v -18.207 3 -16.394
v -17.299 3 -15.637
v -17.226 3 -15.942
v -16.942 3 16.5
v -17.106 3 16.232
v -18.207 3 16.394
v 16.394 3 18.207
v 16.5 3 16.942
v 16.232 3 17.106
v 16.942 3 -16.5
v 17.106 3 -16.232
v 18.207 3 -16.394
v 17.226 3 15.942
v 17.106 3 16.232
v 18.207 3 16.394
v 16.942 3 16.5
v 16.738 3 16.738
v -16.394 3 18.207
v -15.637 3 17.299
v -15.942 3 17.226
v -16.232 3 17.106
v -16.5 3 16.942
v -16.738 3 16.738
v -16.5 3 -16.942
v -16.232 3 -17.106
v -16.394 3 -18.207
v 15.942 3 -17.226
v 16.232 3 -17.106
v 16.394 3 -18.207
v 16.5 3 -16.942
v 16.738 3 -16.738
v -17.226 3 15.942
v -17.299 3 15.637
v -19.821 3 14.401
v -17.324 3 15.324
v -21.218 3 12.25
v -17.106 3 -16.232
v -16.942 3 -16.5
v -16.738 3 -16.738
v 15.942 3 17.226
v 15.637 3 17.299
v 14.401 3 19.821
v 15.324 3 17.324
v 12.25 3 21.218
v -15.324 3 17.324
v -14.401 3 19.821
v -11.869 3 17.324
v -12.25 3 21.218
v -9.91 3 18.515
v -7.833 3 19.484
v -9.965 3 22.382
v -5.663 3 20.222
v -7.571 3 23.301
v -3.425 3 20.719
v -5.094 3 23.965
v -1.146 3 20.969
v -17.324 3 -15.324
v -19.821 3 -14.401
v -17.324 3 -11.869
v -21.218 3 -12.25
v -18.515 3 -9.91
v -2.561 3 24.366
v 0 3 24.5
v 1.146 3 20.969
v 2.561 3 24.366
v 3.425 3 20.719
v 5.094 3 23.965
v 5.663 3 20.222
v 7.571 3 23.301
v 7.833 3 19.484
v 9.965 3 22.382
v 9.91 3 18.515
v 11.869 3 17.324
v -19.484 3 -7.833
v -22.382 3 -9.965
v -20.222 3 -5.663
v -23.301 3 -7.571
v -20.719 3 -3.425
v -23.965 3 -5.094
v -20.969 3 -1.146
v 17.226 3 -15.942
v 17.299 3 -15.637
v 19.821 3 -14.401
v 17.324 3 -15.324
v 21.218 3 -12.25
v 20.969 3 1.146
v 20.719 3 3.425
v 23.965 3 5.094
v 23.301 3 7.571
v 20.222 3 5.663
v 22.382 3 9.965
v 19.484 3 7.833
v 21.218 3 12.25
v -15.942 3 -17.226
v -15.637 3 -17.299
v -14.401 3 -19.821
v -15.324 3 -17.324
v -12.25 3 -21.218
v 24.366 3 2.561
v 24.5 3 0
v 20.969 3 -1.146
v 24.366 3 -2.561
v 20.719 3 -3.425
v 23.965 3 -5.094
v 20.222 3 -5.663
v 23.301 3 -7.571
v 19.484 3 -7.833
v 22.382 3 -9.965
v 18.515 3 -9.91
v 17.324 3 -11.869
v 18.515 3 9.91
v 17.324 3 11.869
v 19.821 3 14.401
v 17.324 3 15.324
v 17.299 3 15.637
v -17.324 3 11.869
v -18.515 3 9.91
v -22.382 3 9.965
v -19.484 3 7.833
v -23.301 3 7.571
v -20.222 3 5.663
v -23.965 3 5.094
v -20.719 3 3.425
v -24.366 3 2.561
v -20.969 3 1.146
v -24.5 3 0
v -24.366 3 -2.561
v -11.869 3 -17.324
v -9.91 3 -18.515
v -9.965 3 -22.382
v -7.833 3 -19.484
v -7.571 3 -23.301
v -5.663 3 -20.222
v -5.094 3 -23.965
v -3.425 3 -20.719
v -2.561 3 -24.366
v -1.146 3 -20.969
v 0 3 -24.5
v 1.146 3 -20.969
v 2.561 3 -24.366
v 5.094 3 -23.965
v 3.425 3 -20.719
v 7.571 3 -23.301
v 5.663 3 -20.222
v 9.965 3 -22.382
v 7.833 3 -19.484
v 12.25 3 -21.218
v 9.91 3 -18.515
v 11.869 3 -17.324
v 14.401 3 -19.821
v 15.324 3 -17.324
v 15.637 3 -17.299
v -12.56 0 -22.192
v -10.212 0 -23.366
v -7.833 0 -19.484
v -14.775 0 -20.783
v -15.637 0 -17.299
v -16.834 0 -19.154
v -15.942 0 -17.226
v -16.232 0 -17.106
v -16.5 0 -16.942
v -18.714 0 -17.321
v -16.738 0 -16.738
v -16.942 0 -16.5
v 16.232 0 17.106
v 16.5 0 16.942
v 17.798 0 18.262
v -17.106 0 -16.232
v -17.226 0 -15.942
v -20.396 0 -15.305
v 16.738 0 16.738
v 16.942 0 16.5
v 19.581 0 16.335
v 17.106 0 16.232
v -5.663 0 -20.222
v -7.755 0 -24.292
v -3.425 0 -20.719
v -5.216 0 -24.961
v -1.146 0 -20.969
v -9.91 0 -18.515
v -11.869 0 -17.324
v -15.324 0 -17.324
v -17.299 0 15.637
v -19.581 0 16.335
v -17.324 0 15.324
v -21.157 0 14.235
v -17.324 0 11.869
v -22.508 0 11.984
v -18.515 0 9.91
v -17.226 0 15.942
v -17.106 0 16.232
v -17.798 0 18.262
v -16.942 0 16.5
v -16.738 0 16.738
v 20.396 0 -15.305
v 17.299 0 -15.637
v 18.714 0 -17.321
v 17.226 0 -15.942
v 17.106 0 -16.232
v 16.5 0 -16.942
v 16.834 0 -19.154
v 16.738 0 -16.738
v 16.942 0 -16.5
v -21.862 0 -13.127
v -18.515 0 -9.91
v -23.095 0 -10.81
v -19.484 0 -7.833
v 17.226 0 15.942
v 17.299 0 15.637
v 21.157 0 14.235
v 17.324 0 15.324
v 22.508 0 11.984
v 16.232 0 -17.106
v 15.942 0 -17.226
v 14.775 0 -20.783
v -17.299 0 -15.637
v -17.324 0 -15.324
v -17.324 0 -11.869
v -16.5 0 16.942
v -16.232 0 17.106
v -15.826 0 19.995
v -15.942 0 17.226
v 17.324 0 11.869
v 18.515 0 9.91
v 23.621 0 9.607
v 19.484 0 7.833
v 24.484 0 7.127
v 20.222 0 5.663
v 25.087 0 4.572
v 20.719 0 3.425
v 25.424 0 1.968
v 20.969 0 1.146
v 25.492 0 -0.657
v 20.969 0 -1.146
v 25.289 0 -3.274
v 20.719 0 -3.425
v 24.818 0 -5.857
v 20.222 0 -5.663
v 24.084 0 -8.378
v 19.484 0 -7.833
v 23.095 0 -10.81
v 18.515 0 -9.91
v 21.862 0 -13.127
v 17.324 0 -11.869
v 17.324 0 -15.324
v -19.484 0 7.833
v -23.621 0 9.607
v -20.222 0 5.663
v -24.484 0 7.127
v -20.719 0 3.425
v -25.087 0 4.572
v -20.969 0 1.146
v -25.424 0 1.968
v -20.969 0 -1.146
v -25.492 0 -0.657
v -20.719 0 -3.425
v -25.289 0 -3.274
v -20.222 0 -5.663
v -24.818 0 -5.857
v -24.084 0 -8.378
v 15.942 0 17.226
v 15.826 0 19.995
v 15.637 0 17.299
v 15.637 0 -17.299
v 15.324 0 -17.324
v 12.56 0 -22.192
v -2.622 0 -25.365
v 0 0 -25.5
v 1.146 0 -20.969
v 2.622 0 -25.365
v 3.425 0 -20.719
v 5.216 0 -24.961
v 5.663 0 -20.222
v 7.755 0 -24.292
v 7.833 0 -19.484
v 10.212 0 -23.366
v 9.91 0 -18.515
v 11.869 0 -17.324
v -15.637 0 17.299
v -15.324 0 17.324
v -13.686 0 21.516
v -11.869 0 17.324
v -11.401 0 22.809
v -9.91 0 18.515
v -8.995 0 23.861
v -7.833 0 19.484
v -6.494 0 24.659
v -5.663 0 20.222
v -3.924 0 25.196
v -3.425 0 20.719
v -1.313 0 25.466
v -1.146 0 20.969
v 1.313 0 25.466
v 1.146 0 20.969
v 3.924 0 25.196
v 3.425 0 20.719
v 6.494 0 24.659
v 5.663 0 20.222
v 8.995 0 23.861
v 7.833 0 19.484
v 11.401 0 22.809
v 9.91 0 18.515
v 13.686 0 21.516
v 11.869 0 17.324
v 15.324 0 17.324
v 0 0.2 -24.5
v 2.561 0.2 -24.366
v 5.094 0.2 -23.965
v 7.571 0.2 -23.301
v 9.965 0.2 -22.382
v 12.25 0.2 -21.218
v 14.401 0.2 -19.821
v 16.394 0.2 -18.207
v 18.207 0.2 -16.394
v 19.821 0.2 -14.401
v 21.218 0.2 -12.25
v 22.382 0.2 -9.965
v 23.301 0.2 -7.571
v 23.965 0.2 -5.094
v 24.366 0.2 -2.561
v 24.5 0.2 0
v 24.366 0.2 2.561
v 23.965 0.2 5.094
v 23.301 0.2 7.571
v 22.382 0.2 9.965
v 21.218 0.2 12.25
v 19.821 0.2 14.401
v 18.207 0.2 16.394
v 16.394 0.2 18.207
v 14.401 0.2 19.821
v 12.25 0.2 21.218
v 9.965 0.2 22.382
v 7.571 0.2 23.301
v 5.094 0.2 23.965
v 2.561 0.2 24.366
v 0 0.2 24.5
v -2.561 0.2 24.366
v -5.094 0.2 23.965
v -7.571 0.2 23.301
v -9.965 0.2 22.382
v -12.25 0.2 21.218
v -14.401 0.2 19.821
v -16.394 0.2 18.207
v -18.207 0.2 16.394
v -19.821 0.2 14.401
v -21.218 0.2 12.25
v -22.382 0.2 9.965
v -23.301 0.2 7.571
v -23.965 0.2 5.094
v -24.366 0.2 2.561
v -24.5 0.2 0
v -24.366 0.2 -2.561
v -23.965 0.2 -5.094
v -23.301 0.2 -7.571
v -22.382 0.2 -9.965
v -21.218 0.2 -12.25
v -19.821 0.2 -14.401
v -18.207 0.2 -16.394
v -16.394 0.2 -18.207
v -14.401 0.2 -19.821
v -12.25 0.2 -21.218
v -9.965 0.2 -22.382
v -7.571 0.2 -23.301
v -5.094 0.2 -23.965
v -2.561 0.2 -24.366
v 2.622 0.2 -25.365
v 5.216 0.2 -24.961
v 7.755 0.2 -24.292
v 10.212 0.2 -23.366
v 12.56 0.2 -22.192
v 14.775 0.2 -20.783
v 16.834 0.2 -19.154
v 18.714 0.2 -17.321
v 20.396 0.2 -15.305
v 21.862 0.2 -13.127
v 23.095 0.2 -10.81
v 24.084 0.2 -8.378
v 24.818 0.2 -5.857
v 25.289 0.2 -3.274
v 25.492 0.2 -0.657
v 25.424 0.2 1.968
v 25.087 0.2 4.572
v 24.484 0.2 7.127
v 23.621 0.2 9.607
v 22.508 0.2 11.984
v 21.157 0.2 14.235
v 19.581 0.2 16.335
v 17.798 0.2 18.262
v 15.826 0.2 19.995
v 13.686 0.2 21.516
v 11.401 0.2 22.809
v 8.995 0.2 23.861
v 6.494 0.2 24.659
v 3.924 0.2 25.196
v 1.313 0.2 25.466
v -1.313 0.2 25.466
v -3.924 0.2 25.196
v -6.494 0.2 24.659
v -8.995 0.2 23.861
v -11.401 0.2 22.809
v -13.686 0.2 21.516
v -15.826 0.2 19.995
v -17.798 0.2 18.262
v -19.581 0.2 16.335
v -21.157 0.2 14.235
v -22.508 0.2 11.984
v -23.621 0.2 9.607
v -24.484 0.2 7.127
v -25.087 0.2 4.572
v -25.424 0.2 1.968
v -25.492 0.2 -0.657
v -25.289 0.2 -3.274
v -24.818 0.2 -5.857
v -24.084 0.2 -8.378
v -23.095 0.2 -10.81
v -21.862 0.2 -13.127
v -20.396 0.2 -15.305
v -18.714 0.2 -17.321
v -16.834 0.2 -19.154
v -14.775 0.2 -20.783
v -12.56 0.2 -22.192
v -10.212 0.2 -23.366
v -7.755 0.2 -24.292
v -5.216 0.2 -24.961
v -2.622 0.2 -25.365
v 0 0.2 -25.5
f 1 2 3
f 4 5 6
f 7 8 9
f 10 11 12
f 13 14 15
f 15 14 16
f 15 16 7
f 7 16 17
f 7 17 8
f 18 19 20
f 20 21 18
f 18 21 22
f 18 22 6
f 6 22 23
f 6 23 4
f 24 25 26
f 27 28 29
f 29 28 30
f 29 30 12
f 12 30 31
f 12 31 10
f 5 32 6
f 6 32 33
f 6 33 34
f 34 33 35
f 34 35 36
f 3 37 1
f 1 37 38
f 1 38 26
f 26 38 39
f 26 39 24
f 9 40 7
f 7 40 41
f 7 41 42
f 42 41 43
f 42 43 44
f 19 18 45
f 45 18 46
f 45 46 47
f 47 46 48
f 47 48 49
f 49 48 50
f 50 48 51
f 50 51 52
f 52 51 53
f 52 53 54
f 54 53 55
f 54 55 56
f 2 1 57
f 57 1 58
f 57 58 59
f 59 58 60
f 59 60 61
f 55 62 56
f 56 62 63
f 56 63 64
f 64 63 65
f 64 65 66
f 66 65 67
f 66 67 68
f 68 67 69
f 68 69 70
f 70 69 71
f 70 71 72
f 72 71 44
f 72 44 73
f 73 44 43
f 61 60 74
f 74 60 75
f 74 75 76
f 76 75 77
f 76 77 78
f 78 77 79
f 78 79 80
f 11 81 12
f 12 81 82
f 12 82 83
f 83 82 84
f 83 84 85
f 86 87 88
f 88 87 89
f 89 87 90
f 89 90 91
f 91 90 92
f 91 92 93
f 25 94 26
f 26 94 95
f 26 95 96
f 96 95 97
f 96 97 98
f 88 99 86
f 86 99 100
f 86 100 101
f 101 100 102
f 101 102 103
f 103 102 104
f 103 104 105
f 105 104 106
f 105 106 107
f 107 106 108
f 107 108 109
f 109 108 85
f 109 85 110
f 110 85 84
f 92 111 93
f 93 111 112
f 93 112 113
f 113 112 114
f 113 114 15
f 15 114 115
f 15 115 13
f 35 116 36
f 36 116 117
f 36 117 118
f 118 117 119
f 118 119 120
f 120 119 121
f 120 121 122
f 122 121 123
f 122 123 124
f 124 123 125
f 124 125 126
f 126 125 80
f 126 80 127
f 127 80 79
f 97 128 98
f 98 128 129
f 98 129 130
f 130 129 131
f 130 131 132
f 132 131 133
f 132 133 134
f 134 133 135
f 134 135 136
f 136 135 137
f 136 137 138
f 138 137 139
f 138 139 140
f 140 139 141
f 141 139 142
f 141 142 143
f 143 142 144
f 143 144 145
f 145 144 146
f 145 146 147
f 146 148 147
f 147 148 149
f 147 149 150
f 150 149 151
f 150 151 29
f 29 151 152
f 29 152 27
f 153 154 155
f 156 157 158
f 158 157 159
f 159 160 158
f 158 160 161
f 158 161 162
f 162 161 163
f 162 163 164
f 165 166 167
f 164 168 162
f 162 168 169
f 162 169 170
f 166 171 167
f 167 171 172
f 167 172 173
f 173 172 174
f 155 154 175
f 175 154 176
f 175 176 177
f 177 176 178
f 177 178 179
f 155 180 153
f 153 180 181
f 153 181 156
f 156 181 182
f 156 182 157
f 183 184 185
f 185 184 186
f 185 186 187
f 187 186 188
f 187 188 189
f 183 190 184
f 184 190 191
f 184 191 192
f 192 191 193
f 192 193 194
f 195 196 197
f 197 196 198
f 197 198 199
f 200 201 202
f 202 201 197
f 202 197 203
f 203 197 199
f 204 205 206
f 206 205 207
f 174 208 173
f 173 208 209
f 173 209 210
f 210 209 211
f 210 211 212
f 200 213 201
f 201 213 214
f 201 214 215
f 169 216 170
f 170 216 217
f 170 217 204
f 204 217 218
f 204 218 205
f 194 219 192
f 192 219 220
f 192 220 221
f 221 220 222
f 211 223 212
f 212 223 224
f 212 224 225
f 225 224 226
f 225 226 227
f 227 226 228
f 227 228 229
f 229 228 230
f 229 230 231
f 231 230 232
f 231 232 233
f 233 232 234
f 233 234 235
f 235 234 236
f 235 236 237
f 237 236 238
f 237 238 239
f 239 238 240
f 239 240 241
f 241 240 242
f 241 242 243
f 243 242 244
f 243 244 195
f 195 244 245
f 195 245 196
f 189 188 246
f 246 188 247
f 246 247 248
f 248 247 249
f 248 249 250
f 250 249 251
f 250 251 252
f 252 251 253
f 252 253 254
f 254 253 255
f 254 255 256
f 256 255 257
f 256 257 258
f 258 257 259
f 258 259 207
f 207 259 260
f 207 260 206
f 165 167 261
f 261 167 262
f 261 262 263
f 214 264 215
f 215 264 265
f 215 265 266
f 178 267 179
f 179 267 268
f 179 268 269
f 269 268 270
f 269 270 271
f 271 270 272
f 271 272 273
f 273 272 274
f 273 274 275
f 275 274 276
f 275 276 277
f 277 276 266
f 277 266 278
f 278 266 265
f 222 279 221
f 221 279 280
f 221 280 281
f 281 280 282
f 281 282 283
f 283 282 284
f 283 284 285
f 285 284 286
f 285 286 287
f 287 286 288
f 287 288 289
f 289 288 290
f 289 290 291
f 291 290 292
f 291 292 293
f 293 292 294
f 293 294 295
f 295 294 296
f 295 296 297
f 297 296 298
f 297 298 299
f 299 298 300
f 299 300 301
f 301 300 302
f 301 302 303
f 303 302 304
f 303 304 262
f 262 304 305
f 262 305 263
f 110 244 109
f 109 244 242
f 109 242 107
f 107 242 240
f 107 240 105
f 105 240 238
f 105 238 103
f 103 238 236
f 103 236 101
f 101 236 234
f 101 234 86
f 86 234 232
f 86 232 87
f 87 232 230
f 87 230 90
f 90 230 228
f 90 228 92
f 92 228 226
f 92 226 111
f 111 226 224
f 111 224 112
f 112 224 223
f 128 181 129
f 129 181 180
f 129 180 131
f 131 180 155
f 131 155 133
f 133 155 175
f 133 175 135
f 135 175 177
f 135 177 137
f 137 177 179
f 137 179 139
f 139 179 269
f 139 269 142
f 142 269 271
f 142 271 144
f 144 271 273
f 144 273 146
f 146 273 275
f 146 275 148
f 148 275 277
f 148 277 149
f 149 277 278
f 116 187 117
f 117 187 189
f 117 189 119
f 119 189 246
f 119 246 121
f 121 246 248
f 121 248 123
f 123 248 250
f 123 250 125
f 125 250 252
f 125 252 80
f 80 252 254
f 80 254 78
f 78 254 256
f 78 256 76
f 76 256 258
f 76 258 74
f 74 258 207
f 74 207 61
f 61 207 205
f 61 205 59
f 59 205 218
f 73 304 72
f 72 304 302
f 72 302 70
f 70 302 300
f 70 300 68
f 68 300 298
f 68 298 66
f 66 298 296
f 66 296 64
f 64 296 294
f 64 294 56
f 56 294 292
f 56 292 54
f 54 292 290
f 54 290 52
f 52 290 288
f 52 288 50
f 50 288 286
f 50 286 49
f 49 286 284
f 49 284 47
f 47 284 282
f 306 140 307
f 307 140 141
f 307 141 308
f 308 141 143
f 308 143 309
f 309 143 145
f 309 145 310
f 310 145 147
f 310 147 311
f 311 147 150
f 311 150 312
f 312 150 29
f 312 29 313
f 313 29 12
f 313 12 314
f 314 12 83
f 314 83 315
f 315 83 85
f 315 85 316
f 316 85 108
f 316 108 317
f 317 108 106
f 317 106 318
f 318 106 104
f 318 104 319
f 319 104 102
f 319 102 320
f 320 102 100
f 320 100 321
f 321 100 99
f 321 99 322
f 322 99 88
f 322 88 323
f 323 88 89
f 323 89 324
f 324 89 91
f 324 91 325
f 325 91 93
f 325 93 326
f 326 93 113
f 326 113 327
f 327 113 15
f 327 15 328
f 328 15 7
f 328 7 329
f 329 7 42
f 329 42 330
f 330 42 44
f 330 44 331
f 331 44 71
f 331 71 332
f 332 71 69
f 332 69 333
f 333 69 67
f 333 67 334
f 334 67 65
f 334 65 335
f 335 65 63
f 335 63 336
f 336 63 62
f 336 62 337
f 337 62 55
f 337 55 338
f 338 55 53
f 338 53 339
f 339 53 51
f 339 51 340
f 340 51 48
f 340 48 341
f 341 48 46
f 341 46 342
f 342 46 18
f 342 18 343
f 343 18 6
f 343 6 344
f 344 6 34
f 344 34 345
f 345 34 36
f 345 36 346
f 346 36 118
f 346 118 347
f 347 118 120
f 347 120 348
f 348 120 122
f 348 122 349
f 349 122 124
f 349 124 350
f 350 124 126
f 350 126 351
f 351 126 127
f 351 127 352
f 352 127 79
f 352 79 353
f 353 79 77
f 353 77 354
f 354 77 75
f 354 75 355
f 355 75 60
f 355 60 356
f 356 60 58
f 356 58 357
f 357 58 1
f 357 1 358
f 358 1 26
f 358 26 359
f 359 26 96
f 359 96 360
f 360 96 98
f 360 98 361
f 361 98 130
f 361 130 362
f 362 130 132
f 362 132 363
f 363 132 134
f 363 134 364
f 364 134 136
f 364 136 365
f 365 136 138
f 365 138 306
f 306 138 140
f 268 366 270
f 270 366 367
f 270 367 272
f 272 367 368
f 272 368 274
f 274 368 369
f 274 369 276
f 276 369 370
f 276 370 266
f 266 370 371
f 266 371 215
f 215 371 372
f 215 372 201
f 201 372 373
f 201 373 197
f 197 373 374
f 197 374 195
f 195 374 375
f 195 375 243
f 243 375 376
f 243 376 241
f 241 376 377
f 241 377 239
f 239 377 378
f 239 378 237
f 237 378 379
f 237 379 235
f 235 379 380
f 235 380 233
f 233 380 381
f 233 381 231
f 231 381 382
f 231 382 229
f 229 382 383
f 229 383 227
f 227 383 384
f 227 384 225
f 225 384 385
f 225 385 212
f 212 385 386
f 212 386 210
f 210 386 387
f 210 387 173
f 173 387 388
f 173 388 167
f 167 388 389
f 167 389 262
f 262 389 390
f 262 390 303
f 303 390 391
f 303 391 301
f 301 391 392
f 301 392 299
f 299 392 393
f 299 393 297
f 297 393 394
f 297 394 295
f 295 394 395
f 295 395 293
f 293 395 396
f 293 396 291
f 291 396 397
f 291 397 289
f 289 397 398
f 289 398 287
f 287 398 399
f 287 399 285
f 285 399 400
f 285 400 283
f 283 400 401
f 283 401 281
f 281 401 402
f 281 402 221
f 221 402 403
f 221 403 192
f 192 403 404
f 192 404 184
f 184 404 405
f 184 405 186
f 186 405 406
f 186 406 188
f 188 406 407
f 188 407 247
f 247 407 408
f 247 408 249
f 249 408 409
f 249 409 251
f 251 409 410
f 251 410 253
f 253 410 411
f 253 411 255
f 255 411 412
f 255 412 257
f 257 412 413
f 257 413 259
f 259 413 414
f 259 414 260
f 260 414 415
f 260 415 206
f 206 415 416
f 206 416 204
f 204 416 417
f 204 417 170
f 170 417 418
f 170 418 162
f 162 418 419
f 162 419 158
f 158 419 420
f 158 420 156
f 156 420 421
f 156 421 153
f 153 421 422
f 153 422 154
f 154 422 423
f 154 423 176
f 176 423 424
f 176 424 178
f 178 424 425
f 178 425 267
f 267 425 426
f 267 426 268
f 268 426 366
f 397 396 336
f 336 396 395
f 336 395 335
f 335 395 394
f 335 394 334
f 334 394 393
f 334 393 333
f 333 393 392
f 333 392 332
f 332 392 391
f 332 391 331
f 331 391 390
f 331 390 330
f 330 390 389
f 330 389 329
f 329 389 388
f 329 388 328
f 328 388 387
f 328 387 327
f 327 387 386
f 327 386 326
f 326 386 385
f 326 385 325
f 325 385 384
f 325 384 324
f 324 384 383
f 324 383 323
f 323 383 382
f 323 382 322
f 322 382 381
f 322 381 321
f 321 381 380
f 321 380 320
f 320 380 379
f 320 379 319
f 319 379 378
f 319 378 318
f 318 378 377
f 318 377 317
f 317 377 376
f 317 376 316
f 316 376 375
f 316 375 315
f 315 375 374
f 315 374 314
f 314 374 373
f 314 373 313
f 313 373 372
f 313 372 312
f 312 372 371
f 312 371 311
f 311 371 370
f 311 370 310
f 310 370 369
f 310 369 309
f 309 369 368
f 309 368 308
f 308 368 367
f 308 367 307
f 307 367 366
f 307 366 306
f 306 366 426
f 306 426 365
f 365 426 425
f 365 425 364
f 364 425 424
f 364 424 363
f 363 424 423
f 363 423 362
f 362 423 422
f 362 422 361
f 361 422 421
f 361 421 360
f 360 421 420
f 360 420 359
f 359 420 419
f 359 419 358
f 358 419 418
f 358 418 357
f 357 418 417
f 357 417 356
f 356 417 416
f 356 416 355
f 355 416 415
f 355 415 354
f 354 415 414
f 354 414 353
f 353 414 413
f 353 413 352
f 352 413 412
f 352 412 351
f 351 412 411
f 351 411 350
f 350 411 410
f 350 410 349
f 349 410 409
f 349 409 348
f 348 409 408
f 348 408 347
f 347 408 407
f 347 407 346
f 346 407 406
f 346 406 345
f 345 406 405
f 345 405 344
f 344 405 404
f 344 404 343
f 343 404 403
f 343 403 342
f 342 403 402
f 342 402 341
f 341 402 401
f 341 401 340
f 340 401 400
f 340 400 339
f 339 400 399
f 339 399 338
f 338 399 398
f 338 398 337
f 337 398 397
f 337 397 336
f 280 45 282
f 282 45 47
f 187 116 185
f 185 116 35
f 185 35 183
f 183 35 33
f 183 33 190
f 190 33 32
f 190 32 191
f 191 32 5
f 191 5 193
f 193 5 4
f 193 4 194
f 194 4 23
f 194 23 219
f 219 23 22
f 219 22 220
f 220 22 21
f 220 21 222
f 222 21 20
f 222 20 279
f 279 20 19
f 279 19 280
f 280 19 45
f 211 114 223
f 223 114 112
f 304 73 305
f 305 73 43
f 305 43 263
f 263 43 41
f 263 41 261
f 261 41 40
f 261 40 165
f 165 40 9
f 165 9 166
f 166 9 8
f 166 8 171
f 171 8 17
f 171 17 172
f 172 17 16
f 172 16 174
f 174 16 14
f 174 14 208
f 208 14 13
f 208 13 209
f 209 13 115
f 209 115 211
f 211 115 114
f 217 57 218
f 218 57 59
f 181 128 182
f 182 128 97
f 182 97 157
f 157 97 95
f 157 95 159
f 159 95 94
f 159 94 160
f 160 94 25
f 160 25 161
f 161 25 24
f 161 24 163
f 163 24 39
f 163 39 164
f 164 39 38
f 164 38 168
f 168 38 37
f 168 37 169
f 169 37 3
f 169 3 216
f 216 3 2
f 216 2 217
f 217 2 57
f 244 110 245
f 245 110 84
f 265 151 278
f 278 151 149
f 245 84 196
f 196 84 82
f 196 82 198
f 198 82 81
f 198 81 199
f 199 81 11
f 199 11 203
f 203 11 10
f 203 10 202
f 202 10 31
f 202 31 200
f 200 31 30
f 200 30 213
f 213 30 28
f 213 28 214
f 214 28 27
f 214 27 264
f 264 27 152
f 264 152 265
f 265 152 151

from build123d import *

# Parameters (mm, degrees)
SKETCH_1_R          = 24.5
SKETCH_1_R_2        = 21
EXTRUDE_1_DEPTH     = 3
SKETCH_2_R          = 25.5
SKETCH_2_R_2        = 24.5
EXTRUDE_2_DEPTH     = 0.2
CUT_EXTRUDE_START   = -3
CUT_EXTRUDE_3_DEPTH = 3


with BuildPart() as part:
    # 草图1 → 凸台-拉伸1 (new body)
    with BuildSketch(Plane(origin=(0, 0, 0), x_dir=(1, 0, 0), z_dir=(0, 1, 0))):
        with Locations(Location((0, 0, 0), (0, 0, 270))):
            Circle(SKETCH_1_R)
        with Locations(Location((0, 0, 0), (0, 0, 270))):
            Circle(SKETCH_1_R_2, mode=Mode.SUBTRACT)
    extrude(amount=EXTRUDE_1_DEPTH)

    # 草图2 → 凸台-拉伸2 (add)
    with BuildSketch(Plane.XZ):
        with Locations(Location((0, 0, 0), (0, 0, 270))):
            Circle(SKETCH_2_R)
        with Locations(Location((0, 0, 0), (0, 0, 270))):
            Circle(SKETCH_2_R_2, mode=Mode.SUBTRACT)
    extrude(amount=-EXTRUDE_2_DEPTH)

    # 草图3 → 切除-拉伸3 (cut)
    with BuildSketch(Plane(origin=(0, 3, 0), x_dir=(1, 0, 0), z_dir=(0, 1, 0)).offset(CUT_EXTRUDE_START)):
        with BuildLine():
            Line((-15.324116139, 17.324116139), (15.324116139, 17.324116139))
            ThreePointArc((15.324116139, 17.324116139), (16.738329701, 16.738329701), (17.324116139, 15.324116139))
            Line((17.324116139, 15.324116139), (17.324116139, -15.324116139))
            ThreePointArc((17.324116139, -15.324116139), (16.738329701, -16.738329701), (15.324116139, -17.324116139))
            Line((15.324116139, -17.324116139), (-15.324116139, -17.324116139))
            ThreePointArc((-15.324116139, -17.324116139), (-16.738329701, -16.738329701), (-17.324116139, -15.324116139))
            Line((-17.324116139, -15.324116139), (-17.324116139, 15.324116139))
            ThreePointArc((-17.324116139, 15.324116139), (-16.738329701, 16.738329701), (-15.324116139, 17.324116139))
        make_face()
    extrude(amount=CUT_EXTRUDE_3_DEPTH, mode=Mode.SUBTRACT)


solid = part.part
